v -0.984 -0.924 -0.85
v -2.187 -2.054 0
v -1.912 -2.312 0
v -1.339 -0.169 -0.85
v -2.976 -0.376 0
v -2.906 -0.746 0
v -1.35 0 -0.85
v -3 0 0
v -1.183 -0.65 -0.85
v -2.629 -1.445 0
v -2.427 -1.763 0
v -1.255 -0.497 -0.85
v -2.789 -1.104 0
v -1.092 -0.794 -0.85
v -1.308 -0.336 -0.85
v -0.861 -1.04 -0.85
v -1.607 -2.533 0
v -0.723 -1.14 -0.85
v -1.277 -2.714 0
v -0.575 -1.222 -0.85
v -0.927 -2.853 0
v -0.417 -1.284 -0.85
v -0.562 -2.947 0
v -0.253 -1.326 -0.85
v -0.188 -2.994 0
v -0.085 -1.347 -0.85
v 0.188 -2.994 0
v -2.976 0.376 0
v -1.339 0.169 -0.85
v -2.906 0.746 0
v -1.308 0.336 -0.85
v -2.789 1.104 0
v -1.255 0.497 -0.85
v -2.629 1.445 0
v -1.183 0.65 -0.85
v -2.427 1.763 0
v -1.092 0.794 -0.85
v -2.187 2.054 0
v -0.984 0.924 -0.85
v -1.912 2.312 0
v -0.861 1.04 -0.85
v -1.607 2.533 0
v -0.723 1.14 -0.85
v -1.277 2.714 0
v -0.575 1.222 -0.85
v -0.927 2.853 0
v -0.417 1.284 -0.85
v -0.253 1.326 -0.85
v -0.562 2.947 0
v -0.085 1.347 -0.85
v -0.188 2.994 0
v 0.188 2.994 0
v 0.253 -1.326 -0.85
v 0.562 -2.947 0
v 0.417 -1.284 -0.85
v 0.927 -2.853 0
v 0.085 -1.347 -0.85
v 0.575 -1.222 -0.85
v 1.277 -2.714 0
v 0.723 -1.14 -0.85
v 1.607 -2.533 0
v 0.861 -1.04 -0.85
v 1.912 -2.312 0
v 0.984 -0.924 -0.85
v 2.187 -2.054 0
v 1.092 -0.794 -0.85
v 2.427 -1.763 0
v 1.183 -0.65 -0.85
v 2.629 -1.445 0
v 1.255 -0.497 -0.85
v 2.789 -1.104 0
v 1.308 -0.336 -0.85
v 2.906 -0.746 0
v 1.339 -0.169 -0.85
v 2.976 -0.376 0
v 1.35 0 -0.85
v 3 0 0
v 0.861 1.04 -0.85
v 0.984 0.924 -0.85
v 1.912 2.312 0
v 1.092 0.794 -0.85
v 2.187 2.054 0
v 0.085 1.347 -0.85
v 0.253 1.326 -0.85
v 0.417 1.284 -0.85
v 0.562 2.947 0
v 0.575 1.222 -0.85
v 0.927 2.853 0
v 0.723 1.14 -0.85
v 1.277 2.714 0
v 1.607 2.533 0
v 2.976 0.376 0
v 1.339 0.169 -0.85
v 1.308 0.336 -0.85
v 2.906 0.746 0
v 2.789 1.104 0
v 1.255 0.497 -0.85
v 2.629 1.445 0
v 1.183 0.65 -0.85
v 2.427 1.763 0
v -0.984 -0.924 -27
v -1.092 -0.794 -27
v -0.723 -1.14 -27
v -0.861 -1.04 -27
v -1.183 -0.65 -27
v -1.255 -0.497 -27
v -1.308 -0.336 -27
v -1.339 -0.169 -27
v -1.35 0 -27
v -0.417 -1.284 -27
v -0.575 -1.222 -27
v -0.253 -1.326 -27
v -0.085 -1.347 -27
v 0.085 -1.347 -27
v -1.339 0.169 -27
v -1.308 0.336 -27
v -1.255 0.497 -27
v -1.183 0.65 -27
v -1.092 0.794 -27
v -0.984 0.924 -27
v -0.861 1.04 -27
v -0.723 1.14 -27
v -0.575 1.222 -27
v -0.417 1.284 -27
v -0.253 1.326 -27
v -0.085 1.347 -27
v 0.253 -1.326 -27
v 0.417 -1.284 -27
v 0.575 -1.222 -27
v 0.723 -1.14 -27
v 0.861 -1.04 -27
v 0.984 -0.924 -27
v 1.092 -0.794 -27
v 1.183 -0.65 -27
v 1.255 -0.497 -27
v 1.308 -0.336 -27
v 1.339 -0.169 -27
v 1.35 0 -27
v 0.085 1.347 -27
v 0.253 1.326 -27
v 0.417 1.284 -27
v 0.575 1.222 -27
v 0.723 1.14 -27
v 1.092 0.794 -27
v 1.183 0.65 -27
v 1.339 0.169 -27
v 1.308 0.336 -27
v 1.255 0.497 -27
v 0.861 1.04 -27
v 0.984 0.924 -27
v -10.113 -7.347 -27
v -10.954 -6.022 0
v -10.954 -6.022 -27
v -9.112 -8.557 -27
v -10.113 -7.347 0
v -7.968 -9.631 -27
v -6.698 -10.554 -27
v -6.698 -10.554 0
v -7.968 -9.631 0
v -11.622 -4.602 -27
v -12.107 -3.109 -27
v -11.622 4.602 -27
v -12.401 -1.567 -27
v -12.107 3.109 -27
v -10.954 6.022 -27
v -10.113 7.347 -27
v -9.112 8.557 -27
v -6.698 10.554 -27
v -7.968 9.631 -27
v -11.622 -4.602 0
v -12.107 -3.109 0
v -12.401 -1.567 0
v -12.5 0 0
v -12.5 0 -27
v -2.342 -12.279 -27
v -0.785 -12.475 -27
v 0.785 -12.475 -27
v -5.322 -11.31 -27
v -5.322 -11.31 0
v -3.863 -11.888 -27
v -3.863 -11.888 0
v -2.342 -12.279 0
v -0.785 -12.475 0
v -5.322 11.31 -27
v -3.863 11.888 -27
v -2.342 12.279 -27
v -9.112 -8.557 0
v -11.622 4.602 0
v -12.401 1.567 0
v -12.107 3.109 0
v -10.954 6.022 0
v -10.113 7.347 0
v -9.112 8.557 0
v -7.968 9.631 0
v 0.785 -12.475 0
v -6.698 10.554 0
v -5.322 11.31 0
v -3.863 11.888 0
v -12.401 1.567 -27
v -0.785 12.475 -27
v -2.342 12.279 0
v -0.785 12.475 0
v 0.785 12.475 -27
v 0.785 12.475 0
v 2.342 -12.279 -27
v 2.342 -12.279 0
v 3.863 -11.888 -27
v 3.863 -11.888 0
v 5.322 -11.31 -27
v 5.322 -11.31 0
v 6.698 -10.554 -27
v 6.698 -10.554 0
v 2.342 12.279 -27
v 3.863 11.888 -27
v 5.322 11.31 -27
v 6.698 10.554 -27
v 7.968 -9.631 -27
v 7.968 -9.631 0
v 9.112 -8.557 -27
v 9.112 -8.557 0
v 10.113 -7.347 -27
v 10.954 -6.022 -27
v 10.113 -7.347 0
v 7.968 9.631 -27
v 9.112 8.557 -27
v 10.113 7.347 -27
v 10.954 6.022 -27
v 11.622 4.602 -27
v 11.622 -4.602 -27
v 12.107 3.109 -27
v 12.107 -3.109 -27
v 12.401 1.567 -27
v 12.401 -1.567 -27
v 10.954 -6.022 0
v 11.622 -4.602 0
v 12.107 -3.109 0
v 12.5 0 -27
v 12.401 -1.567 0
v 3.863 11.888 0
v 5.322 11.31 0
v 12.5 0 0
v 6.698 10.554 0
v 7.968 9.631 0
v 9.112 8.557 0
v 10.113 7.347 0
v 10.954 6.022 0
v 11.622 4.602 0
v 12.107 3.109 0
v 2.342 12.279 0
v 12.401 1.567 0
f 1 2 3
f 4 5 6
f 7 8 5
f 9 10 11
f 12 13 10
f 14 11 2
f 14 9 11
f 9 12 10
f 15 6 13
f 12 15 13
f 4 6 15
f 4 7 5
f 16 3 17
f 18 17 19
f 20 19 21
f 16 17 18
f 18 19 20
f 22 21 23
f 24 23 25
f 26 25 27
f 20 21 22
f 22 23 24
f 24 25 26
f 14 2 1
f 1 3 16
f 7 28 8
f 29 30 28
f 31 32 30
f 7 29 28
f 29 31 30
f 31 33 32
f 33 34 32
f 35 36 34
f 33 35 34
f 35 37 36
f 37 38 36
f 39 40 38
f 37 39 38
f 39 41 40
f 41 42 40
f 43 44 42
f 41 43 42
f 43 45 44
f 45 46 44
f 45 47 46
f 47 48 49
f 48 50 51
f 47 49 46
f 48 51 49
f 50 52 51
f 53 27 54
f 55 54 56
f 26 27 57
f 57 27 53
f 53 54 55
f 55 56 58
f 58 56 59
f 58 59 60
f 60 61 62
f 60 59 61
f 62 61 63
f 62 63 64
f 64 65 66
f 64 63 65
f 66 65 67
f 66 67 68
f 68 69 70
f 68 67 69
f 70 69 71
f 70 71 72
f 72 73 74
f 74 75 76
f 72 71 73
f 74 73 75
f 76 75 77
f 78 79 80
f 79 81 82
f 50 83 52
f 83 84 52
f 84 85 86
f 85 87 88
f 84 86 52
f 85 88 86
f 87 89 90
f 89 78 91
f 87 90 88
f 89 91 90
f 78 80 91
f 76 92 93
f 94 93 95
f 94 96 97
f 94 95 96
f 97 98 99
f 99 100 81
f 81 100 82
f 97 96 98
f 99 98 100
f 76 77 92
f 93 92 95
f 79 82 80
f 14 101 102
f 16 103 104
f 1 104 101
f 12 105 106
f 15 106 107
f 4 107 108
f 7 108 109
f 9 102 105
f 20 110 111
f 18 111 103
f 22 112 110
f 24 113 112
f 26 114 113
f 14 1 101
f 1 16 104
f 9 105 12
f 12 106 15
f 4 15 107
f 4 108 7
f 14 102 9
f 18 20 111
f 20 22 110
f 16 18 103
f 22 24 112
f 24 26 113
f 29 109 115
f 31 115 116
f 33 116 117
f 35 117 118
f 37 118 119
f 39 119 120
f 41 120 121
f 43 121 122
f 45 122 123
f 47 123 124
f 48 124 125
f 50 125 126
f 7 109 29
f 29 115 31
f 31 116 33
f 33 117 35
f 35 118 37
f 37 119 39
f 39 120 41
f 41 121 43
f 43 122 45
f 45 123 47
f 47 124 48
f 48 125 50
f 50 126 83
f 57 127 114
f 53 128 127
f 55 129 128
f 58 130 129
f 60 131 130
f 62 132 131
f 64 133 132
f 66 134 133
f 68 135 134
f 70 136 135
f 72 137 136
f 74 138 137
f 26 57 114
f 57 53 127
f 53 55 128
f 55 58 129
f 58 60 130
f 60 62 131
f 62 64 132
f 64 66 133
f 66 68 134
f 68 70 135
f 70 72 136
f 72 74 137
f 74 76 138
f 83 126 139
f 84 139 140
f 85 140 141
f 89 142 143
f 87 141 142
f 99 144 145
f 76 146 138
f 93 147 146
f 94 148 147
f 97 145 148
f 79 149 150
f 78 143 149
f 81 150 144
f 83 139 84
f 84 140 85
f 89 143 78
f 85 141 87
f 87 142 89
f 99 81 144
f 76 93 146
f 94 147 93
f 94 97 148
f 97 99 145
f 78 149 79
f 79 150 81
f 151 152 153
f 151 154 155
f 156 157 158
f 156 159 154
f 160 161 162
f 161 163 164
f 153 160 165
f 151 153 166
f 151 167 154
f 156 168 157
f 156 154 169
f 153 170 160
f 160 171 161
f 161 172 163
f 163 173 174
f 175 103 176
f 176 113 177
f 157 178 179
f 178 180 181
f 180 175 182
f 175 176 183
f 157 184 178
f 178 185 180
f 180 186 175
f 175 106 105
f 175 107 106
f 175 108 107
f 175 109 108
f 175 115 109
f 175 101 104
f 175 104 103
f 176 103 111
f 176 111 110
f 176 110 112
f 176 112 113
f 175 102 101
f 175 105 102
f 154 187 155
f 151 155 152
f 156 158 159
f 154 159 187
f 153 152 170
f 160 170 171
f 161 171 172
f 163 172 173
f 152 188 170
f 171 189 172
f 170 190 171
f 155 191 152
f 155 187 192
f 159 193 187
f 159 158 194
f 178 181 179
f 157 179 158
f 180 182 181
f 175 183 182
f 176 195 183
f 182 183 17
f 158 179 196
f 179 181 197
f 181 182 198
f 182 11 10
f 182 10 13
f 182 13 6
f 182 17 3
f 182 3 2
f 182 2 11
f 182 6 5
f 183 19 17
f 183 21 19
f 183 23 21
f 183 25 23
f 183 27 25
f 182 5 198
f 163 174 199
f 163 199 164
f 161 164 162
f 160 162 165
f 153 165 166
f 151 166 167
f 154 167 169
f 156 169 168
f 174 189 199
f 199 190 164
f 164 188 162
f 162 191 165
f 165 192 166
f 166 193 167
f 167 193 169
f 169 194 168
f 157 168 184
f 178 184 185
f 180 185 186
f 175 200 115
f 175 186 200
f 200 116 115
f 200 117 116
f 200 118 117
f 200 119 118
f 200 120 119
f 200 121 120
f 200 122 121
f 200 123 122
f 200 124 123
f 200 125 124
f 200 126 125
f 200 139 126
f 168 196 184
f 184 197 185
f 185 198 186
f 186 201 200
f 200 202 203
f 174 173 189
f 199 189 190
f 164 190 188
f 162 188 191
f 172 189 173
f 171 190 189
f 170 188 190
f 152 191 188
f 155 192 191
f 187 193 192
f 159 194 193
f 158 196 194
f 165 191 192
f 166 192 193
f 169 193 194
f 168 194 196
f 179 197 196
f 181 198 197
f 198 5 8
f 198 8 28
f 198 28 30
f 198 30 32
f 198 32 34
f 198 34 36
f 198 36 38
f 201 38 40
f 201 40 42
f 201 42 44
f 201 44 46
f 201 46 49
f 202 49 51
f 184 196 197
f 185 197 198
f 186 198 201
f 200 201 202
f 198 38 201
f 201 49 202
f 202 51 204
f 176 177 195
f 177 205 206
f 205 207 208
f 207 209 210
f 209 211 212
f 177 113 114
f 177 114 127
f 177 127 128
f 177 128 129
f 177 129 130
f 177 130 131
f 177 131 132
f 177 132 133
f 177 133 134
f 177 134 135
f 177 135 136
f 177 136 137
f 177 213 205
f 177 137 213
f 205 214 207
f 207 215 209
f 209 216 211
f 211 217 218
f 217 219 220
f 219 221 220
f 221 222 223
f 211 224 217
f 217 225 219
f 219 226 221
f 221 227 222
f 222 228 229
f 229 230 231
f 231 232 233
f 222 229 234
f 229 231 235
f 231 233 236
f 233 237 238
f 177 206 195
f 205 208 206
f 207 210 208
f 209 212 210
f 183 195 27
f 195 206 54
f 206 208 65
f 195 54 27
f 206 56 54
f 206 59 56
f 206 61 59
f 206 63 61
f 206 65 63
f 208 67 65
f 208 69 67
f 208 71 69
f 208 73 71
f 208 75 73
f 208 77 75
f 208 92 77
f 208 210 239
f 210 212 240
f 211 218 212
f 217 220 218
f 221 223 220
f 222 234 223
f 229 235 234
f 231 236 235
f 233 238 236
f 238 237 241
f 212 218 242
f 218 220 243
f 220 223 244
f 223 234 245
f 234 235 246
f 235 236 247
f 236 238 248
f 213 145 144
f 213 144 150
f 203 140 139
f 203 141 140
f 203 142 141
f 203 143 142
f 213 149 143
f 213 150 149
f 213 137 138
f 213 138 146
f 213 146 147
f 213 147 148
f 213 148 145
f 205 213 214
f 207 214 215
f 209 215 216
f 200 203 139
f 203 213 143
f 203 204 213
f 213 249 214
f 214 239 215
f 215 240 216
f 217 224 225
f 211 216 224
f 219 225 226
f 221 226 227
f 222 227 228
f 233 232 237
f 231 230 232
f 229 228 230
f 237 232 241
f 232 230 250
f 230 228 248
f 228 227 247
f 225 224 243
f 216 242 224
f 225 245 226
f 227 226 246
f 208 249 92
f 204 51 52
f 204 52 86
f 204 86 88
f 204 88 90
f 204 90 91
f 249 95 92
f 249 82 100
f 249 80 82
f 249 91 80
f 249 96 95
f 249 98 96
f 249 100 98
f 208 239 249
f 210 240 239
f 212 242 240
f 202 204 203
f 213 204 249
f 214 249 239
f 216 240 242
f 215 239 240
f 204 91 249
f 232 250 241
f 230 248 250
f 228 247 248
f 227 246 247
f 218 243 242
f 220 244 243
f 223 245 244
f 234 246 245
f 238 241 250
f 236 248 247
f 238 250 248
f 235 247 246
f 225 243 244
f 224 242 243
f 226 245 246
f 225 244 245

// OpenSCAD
$fn = 50;

difference() {
	union() {
		translate(v = [0, 0, -27.0]) {
			cylinder(h = 27, r = 12.5);
		}
	}
	union() {
		translate(v = [0, 0, 0]) {
			rotate(a = [0, 0, 0]) {
				difference() {
					union() {
						translate(v = [0, 0, -30.0]) {
							cylinder(h = 30, r = 1.0);
						}
						translate(v = [0, 0, -0.85]) {
							cylinder(h = 0.85, r1 = 1.35, r2 = 3.0);
						}
						translate(v = [0, 0, -30.0]) {
							cylinder(h = 30, r = 1.35);
						}
						translate(v = [0, 0, -30.0]) {
							cylinder(h = 30, r = 1.0);
						}
					}
					union();
				}
			}
		}
	}
}
